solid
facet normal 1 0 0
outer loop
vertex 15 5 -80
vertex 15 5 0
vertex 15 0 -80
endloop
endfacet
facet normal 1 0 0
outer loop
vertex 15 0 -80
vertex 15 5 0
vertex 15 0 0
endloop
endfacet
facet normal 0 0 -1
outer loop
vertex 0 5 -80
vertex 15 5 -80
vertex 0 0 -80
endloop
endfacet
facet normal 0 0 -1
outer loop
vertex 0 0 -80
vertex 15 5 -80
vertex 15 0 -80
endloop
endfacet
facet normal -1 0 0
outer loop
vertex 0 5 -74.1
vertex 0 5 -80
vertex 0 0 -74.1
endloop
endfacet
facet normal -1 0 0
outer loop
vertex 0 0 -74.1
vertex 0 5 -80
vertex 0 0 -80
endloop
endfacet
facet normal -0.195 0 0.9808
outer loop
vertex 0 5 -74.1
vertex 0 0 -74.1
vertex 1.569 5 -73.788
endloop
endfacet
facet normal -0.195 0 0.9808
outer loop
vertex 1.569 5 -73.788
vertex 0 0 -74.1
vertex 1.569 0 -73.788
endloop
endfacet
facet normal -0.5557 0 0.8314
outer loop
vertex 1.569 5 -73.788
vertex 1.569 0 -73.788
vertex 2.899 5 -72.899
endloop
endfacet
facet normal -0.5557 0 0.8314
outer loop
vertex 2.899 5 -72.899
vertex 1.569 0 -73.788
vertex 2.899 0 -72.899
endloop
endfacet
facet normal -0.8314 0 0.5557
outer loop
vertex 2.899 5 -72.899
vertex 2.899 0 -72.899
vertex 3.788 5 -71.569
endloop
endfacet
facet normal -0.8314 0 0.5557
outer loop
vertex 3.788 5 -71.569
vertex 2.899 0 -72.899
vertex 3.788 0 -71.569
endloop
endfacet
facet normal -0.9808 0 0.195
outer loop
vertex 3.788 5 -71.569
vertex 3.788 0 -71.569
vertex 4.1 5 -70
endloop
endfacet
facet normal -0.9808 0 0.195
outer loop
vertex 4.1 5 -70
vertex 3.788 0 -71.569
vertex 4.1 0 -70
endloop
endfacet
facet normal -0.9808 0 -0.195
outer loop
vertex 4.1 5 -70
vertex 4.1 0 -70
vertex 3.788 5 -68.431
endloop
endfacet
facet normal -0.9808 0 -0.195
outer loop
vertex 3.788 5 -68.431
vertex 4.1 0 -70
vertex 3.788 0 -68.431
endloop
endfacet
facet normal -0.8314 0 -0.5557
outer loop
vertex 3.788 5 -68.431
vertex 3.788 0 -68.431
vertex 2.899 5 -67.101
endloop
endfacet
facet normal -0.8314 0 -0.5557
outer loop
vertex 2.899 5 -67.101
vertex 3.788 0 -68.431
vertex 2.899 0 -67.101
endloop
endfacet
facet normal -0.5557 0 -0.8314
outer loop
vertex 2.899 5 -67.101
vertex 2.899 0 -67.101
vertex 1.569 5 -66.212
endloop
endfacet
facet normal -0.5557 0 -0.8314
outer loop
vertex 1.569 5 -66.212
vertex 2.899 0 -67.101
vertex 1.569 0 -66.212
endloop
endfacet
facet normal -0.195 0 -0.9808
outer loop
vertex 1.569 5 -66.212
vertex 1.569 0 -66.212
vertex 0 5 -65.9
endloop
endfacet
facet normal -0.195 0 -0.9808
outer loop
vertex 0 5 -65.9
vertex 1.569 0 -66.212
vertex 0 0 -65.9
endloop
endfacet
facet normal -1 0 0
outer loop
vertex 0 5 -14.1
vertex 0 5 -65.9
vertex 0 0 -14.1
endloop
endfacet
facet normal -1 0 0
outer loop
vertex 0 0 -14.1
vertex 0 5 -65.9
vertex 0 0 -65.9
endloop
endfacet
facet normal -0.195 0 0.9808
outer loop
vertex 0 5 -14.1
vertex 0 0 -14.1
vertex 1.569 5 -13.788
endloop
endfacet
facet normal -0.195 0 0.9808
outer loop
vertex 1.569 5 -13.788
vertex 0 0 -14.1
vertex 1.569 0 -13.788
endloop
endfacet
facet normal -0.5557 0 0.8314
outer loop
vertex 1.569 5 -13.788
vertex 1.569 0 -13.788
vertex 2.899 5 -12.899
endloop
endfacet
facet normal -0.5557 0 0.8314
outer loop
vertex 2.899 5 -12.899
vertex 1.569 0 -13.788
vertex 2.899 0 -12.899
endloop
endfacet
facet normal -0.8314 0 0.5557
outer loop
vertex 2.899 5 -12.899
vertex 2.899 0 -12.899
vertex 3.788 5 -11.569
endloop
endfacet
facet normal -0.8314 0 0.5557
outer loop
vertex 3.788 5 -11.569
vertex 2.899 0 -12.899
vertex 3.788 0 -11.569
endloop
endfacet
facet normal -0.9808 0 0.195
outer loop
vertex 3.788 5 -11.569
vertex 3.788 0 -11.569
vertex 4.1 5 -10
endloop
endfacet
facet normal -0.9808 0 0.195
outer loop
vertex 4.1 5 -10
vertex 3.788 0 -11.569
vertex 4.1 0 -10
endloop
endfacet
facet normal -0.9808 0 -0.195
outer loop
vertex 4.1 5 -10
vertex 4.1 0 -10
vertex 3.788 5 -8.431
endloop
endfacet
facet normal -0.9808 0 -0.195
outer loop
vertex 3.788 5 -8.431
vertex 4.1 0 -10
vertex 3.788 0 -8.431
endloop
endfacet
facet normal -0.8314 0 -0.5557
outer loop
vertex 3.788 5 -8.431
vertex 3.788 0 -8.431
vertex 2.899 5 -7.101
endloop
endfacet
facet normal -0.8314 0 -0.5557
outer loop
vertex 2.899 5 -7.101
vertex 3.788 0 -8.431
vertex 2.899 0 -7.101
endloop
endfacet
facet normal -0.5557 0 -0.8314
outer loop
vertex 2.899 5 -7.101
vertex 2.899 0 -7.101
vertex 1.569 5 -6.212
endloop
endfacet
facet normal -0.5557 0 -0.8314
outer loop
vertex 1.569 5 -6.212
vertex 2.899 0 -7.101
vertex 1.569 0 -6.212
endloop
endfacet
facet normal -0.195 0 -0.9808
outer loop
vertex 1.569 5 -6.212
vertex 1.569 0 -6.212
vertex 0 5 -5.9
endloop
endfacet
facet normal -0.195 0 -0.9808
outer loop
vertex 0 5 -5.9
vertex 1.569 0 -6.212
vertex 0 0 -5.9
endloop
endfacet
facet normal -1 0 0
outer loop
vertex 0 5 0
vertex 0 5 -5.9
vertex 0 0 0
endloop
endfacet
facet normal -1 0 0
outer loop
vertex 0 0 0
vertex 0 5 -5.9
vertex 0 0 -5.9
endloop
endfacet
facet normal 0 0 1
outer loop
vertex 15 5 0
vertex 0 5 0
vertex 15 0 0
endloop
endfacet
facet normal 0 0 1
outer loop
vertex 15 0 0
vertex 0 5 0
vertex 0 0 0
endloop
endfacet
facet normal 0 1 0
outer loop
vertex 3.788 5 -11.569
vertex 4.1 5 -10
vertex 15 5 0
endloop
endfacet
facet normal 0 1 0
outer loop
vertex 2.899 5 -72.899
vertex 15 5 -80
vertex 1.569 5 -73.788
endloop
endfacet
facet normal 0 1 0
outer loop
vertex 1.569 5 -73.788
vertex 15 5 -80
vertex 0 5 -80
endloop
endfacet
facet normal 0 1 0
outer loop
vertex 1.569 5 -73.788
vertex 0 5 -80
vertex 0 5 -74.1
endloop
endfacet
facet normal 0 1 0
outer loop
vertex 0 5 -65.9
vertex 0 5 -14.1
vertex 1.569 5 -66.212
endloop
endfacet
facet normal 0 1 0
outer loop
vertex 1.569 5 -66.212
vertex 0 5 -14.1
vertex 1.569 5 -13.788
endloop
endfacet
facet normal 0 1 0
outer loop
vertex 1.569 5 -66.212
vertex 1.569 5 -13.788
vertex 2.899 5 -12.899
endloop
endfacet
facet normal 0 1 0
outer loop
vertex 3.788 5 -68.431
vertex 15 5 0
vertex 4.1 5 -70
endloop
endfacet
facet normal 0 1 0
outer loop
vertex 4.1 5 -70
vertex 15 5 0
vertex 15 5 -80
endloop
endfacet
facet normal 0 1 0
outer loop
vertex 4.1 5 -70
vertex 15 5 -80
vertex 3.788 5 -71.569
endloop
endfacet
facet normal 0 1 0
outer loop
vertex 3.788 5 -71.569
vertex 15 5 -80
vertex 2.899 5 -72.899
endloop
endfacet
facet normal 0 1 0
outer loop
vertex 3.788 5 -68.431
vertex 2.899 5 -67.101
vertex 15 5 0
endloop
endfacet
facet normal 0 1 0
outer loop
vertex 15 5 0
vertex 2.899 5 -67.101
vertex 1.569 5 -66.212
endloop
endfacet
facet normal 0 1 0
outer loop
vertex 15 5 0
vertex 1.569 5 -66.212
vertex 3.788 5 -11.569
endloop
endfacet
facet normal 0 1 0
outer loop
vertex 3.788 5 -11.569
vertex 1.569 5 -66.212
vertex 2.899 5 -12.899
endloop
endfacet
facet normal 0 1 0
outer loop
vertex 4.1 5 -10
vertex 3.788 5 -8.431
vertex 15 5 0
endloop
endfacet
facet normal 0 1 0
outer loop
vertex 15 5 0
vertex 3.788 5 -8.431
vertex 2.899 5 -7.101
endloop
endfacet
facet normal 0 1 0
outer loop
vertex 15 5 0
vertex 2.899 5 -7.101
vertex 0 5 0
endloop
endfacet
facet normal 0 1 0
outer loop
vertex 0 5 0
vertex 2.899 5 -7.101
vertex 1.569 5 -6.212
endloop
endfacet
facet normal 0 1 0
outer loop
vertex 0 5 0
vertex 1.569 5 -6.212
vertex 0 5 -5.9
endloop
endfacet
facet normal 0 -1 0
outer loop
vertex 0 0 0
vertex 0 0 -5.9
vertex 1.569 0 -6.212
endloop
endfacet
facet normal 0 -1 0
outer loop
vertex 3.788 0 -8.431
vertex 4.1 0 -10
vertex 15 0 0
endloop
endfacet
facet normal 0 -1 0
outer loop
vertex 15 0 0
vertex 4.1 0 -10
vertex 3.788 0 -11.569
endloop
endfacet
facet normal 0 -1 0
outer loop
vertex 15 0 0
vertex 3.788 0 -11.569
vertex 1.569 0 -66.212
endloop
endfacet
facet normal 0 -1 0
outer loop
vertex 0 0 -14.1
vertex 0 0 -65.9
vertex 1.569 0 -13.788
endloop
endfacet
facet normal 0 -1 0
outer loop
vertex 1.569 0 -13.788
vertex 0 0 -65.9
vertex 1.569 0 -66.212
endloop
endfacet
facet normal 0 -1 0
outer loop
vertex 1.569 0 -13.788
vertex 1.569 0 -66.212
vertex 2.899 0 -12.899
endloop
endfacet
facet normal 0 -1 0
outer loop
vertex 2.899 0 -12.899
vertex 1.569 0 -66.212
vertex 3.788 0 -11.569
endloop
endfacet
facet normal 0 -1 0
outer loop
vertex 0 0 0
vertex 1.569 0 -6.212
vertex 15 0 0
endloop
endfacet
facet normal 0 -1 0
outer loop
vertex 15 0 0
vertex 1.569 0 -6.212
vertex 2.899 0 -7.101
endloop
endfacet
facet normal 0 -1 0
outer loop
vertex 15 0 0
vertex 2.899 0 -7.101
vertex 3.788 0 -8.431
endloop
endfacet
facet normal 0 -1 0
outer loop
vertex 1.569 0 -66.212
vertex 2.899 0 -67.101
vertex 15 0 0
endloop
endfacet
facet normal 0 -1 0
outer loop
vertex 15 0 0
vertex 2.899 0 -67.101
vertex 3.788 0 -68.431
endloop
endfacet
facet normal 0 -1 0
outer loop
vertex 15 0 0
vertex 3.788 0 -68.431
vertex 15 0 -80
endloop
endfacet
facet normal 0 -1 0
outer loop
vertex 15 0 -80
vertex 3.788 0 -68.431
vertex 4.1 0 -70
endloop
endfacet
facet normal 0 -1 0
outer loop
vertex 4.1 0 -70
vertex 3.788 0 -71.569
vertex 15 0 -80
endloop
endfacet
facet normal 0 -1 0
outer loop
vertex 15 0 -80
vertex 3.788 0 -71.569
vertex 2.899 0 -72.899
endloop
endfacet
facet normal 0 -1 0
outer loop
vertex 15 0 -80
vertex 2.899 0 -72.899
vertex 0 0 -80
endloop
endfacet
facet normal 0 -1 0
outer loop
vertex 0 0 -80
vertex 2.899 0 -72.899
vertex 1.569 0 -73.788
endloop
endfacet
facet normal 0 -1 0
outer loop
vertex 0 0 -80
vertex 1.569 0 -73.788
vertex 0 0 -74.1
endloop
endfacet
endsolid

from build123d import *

# Parameters (mm, degrees)
BOSS_EXTRUDE1_DEPTH = 5


with BuildPart() as part:
    # Sketch1 → Boss-Extrude1 (new body)
    with BuildSketch(Plane(origin=(0, 0, 0), x_dir=(1, 0, 0), z_dir=(0, 1, 0))):
        with BuildLine():
            Line((15, 40), (0, 40))
            Line((0, 40), (0, 14.1))
            ThreePointArc((0, 14.1), (2.899137803, 12.899137803), (4.1, 10))
            ThreePointArc((4.1, 10), (2.899137803, 7.100862197), (0, 5.9))
            Line((0, 5.9), (0, 0))
            Line((0, 0), (15, 0))
            Line((15, 0), (15, 40))
        make_face()
        with BuildLine():
            Line((0, 65.9), (0, 40))
            Line((0, 40), (15, 40))
            Line((15, 40), (15, 80))
            Line((15, 80), (0, 80))
            Line((0, 80), (0, 74.1))
            ThreePointArc((0, 74.1), (2.899137803, 72.899137803), (4.1, 70))
            ThreePointArc((4.1, 70), (2.899137803, 67.100862197), (0, 65.9))
        make_face()
    extrude(amount=BOSS_EXTRUDE1_DEPTH)


solid = part.part
